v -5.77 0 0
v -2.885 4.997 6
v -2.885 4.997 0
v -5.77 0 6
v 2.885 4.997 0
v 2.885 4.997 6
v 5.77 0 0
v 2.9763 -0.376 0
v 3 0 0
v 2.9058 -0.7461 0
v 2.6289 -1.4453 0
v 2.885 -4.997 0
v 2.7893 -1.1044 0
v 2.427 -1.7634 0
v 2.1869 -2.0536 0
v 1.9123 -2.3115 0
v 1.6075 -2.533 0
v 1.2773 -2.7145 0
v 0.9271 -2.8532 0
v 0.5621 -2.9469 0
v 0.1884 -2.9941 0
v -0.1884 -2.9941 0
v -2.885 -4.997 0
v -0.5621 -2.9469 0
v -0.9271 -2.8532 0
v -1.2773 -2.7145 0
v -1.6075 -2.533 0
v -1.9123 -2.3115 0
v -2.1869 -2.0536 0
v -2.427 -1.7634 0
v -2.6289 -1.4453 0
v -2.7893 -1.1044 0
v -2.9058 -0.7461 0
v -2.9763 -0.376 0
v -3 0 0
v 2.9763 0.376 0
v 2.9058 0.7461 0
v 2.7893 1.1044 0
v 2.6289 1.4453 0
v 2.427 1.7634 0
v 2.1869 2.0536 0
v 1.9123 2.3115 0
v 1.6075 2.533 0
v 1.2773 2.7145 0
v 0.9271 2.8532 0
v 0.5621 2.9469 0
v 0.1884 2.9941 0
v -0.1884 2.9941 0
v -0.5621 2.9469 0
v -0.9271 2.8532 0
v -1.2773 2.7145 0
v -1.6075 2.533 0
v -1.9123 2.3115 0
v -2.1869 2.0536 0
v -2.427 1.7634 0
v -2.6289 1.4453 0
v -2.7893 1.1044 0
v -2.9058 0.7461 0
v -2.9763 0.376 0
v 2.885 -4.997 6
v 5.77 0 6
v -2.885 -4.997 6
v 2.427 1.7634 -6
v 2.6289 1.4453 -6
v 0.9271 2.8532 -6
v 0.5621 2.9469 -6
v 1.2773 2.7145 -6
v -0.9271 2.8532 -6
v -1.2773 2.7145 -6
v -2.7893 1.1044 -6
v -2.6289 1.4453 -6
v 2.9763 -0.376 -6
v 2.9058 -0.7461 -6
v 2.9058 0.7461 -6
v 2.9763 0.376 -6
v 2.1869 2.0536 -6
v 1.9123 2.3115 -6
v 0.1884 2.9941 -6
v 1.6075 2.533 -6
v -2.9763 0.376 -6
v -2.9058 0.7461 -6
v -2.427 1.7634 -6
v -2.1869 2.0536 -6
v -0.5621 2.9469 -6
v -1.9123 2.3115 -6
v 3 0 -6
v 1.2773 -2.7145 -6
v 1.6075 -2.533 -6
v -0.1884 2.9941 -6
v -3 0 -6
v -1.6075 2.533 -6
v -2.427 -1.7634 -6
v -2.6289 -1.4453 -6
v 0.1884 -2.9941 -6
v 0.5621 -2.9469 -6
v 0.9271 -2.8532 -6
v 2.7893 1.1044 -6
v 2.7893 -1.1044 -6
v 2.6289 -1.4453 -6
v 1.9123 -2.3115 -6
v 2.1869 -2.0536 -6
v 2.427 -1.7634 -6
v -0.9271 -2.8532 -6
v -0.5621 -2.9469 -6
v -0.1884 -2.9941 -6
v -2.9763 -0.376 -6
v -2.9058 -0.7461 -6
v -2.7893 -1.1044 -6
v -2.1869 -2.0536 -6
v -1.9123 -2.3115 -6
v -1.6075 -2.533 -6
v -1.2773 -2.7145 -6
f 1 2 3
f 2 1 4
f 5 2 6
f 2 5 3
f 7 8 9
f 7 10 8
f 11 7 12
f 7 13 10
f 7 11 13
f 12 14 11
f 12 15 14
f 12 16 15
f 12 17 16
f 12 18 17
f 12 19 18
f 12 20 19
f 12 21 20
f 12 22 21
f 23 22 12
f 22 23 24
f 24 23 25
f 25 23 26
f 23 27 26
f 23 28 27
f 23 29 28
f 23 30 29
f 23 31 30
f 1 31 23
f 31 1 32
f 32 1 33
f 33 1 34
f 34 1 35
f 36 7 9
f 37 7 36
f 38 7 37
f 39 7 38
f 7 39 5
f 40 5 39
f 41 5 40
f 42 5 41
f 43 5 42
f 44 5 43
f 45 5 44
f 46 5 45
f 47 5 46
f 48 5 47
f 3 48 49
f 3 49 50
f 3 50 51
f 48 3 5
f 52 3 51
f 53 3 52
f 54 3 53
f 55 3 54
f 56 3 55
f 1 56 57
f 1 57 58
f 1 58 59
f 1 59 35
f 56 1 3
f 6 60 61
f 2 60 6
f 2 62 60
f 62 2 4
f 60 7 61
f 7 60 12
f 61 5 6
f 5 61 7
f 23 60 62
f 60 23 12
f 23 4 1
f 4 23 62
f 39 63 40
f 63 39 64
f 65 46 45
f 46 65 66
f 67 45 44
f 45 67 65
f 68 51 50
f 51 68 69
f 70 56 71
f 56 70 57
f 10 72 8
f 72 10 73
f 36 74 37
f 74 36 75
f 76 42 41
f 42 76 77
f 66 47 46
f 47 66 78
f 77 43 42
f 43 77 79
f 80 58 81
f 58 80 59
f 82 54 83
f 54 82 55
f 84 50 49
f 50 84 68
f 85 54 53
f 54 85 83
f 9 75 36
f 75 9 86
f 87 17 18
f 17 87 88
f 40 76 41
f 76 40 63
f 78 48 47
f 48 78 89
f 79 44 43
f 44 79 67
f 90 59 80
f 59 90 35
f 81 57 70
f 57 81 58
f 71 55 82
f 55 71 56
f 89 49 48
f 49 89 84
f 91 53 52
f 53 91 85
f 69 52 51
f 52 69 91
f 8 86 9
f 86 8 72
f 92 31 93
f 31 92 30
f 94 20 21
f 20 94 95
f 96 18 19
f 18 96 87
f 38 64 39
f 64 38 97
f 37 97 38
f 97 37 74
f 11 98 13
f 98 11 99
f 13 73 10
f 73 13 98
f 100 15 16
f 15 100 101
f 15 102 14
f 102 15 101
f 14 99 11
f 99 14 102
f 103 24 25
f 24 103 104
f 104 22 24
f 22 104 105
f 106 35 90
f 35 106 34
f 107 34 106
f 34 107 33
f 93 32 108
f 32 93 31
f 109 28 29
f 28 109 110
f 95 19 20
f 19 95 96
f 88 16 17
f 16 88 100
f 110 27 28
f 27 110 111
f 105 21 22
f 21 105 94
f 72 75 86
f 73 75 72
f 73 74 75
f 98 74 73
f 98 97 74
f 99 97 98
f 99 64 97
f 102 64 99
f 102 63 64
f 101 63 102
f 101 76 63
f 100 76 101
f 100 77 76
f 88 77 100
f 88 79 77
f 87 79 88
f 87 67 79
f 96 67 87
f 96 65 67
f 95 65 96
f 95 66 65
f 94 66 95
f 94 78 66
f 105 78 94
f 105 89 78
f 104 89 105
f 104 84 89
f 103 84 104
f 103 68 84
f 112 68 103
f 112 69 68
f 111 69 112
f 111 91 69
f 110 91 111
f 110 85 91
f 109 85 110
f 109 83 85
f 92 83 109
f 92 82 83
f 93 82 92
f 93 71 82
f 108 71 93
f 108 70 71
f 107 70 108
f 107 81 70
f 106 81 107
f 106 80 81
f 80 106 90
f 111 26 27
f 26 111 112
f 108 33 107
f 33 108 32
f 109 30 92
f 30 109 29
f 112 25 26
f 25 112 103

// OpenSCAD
$fn = 50;


difference() {
	union() {
		linear_extrude(height = 6) {
			polygon(points = [[5.7700000000, 0.0000000000], [2.8850000000, 4.9969665798], [-2.8850000000, 4.9969665798], [-5.7700000000, 0.0000000000], [-2.8850000000, -4.9969665798], [2.8850000000, -4.9969665798]]);
		}
		translate(v = [0, 0, -6]) {
			cylinder(h = 6, r = 3.0000000000);
		}
	}
	union();
}
